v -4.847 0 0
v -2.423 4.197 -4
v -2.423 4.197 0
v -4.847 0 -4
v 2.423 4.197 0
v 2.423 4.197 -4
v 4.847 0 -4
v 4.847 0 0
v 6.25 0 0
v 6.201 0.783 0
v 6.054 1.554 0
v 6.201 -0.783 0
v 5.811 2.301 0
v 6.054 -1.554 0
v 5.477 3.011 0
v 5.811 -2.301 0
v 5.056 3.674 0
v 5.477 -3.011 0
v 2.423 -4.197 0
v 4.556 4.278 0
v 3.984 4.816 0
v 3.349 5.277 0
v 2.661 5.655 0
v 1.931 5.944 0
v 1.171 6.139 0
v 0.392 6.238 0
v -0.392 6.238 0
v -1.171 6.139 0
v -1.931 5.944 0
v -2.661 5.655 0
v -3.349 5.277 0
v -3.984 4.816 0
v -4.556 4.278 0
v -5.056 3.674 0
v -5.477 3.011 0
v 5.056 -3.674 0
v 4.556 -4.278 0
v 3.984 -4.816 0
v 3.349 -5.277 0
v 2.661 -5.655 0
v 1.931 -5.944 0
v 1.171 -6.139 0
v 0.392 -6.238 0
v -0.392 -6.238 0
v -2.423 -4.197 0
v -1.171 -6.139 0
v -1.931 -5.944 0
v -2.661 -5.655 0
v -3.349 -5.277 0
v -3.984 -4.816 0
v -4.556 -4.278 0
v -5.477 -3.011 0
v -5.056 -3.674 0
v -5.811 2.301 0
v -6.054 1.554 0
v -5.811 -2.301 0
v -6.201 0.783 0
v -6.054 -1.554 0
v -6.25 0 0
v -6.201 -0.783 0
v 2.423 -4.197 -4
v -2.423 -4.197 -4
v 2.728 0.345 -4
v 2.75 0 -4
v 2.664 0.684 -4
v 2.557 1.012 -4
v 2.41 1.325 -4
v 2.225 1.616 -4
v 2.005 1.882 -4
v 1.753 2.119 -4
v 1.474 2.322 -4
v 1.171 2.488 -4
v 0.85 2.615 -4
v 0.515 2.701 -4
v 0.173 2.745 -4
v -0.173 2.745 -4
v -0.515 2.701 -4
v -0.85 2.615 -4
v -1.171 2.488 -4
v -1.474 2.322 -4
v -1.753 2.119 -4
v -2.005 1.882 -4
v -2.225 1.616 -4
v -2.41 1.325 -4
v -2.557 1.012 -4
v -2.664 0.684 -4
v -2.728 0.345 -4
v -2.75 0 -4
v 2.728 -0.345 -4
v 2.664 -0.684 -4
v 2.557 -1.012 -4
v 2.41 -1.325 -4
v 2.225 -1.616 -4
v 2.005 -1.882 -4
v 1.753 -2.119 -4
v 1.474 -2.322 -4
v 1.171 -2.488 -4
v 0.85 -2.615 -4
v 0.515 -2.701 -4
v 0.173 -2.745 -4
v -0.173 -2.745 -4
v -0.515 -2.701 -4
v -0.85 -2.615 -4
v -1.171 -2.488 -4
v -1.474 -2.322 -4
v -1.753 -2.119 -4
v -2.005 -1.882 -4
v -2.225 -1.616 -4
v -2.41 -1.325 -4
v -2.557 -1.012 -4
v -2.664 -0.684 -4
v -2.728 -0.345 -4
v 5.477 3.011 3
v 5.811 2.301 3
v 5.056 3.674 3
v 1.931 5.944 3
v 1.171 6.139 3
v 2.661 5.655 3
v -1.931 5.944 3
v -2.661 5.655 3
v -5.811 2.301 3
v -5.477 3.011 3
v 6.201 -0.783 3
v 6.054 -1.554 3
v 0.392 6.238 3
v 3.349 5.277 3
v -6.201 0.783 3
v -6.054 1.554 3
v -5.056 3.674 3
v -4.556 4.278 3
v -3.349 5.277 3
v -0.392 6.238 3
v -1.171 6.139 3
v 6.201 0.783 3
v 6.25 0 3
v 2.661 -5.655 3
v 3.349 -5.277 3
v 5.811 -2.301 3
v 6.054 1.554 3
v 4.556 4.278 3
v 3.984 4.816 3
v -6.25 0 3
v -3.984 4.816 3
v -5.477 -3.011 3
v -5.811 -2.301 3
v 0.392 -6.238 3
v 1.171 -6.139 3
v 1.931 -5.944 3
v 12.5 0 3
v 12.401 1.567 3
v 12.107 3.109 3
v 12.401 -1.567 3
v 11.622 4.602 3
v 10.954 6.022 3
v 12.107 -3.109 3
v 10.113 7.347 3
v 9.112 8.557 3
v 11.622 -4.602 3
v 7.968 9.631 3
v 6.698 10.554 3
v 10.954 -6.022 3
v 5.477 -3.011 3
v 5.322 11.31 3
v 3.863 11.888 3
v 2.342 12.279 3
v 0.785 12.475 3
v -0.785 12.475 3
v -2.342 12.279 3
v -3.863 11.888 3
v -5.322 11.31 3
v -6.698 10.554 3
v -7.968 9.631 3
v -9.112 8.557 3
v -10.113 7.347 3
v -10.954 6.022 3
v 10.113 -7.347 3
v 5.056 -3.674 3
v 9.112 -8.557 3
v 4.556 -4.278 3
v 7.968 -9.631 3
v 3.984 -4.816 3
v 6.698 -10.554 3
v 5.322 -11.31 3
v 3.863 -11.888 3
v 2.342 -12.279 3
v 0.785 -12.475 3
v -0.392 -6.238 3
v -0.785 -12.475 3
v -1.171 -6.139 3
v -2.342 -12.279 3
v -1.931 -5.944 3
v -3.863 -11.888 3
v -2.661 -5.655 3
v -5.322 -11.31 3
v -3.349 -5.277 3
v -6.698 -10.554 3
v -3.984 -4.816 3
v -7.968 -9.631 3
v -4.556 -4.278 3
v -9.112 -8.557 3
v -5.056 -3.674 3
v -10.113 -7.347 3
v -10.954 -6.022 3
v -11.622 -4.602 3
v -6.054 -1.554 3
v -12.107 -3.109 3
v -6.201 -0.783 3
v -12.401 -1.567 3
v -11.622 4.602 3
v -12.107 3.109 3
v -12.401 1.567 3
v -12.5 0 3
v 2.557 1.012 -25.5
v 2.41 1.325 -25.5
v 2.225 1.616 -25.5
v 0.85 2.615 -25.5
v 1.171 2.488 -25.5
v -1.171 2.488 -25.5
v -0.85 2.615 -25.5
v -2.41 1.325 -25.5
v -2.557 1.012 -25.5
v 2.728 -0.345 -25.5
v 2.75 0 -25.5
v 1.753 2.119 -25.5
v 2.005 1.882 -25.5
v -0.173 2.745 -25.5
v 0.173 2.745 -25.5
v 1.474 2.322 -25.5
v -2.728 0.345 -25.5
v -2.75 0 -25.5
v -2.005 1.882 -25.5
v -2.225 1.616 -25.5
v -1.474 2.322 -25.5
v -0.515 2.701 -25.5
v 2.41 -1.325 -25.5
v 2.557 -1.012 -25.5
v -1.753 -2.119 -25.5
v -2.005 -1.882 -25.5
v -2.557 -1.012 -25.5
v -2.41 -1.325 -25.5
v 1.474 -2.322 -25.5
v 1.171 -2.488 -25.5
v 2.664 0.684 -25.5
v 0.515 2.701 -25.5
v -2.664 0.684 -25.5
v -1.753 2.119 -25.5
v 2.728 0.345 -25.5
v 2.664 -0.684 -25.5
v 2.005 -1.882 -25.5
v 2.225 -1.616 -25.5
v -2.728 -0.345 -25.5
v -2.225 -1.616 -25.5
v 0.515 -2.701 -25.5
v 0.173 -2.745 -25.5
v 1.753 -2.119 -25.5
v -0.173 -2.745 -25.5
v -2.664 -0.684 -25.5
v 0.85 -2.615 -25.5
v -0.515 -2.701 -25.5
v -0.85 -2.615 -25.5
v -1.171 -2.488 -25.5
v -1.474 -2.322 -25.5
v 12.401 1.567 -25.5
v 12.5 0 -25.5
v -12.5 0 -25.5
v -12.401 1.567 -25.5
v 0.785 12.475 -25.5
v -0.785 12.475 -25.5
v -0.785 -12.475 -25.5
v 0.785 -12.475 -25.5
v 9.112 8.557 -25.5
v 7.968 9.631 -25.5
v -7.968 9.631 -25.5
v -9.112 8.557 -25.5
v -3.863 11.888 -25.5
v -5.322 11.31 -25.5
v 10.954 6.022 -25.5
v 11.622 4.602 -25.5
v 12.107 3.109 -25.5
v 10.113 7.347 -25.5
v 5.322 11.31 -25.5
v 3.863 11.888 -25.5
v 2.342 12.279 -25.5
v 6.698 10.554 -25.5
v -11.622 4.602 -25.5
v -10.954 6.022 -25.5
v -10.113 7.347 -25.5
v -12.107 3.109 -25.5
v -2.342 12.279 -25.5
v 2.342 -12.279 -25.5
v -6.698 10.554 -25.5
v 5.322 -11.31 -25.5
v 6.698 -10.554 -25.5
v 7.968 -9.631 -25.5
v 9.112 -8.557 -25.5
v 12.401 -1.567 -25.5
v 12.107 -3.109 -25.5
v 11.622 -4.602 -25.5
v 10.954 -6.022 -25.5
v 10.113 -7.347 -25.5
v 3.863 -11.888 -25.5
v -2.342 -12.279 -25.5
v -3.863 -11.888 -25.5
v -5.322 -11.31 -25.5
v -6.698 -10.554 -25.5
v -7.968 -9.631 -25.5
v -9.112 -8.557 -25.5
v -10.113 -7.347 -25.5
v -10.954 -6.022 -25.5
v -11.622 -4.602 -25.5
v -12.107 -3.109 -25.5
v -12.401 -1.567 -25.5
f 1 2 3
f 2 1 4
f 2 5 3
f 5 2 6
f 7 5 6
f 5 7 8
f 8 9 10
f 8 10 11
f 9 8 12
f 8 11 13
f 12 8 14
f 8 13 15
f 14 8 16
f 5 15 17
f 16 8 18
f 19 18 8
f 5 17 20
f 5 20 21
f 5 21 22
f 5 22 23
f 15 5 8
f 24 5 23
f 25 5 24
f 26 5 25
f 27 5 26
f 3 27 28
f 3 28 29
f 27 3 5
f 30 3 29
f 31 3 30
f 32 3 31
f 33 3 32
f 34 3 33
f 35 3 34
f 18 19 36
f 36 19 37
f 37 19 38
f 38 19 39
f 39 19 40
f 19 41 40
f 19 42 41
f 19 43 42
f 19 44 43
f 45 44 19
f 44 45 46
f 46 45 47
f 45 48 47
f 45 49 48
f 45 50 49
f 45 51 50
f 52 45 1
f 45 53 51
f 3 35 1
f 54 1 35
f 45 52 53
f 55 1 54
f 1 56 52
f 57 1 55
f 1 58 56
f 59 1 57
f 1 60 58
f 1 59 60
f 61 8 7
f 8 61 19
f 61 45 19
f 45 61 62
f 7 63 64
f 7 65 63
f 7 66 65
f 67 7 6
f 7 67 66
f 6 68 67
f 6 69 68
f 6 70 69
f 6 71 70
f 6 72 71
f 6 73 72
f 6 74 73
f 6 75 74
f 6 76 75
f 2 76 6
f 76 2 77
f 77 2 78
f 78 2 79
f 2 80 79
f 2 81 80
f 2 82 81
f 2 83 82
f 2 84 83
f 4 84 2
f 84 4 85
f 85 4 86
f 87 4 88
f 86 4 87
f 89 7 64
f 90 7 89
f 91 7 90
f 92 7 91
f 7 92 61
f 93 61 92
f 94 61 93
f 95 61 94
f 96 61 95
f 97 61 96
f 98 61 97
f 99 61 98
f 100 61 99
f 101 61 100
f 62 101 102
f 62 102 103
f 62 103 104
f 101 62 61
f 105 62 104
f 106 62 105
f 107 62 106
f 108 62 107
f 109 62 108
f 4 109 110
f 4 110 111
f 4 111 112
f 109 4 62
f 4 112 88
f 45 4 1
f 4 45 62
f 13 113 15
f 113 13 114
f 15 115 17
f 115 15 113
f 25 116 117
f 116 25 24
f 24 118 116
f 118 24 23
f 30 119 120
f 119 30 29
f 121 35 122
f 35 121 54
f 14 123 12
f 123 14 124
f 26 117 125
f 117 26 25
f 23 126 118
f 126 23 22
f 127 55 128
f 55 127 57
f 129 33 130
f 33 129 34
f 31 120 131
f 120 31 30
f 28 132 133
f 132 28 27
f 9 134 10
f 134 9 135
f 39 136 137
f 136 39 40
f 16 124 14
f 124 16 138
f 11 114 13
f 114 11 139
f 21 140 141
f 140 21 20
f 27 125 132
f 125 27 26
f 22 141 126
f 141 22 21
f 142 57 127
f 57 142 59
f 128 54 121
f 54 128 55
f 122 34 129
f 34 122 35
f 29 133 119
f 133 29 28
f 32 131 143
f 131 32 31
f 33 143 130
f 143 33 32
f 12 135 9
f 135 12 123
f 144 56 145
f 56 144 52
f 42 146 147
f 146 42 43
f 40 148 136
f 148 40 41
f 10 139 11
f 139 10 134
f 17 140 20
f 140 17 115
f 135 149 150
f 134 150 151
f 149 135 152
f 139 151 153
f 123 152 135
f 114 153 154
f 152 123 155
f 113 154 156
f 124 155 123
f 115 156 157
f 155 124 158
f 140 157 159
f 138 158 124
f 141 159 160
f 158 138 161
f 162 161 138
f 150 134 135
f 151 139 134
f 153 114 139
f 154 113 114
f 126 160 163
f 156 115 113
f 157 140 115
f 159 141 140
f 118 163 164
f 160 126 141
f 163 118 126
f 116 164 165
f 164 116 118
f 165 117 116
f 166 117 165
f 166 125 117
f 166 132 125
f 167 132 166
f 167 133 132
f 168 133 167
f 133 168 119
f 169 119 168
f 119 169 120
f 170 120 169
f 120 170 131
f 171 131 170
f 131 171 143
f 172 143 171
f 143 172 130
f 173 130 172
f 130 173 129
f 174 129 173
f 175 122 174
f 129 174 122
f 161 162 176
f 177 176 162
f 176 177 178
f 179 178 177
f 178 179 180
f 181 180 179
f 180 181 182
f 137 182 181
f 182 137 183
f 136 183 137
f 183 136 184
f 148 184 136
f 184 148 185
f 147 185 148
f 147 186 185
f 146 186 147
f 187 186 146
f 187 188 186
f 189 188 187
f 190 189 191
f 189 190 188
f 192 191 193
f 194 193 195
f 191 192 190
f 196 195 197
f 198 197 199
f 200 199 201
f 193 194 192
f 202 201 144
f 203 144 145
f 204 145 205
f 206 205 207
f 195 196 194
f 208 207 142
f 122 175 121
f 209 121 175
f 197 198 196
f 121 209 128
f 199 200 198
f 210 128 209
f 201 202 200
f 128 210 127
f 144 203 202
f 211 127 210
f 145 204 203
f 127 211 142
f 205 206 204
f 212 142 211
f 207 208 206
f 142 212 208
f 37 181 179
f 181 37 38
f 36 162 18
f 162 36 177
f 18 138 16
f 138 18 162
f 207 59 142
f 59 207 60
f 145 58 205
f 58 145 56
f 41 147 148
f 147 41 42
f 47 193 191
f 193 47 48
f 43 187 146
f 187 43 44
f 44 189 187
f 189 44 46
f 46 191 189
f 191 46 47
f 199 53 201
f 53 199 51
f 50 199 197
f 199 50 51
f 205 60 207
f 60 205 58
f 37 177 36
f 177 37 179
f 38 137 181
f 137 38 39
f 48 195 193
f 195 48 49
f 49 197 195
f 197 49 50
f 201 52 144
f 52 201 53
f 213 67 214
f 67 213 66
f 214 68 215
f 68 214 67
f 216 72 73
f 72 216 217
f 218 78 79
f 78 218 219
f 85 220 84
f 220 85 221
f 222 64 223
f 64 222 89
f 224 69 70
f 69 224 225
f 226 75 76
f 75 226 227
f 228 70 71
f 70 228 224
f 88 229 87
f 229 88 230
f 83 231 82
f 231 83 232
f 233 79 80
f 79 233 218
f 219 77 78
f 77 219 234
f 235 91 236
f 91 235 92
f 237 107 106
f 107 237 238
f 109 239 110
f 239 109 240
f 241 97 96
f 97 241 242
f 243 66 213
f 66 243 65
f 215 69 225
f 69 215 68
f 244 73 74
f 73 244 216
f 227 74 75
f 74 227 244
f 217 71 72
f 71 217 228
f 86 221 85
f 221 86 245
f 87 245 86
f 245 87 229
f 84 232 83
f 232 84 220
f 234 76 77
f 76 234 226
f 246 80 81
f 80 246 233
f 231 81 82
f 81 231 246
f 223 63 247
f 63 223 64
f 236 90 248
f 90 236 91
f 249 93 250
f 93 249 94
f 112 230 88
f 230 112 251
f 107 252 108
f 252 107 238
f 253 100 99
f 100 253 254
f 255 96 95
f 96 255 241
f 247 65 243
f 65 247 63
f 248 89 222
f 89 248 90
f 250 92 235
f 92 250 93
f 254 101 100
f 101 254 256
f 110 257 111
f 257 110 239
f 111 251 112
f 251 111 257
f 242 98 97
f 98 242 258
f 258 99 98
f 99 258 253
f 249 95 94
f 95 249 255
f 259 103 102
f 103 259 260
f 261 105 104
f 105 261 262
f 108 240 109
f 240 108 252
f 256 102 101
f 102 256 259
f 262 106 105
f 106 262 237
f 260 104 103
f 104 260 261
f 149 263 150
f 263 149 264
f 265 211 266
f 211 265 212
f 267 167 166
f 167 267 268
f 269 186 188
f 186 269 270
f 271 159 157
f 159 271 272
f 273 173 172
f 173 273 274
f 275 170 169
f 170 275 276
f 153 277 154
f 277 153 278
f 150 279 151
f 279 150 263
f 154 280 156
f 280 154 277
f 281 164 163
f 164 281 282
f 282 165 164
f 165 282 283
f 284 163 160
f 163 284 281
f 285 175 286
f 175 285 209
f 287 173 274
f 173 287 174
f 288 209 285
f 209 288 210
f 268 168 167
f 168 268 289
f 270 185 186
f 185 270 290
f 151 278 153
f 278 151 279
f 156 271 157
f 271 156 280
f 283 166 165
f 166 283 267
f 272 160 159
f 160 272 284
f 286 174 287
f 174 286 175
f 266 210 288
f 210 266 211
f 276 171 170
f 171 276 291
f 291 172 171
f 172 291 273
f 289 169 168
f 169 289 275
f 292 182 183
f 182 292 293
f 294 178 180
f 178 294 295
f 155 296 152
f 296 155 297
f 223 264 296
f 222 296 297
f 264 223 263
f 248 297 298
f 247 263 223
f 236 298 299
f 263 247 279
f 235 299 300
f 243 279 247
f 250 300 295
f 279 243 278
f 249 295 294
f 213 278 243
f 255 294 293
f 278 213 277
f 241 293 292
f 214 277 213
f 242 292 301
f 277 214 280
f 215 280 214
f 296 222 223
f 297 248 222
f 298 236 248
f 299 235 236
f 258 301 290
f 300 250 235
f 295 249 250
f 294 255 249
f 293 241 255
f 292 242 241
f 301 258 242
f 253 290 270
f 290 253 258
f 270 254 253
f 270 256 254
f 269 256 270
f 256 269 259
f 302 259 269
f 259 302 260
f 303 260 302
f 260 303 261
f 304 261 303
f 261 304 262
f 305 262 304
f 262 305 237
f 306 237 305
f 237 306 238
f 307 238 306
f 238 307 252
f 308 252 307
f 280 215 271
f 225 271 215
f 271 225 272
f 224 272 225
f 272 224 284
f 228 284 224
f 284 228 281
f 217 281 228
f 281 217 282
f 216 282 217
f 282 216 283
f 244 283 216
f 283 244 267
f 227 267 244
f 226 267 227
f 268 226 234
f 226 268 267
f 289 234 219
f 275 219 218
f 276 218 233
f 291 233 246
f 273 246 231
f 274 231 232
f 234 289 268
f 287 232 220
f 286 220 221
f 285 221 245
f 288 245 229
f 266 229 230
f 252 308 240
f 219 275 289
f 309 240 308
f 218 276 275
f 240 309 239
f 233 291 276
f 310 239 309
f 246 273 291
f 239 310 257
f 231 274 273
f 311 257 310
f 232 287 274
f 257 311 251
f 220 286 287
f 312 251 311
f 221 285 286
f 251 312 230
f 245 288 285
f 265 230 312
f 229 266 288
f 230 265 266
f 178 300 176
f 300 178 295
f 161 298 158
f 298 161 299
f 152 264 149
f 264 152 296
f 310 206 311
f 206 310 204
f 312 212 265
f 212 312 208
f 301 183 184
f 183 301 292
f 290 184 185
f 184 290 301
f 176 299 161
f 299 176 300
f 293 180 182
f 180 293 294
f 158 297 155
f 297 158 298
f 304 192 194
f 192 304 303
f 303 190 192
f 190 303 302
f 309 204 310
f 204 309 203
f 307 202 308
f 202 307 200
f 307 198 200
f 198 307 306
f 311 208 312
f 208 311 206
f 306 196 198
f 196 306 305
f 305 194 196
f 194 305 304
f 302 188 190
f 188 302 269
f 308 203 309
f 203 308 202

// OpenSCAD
$fn = 50;


difference() {
	union() {
		translate(v = [0, 0, -25.5000000000]) {
			cylinder(h = 28.5000000000, r = 12.5000000000);
		}
	}
	union() {
		translate(v = [0, 0, 0]) {
			rotate(a = [0, 0, 0]) {
				difference() {
					union() {
						translate(v = [0, 0, -4]) {
							linear_extrude(height = 4) {
								polygon(points = [[4.8468000000, 0.0000000000], [2.4234000000, 4.1974519271], [-2.4234000000, 4.1974519271], [-4.8468000000, 0.0000000000], [-2.4234000000, -4.1974519271], [2.4234000000, -4.1974519271]]);
							}
						}
					}
					union();
				}
			}
		}
		#cylinder(h = 3, r = 6.2500000000);
		#translate(v = [0, 0, -100.0000000000]) {
			cylinder(h = 200, r = 2.7500000000);
		}
	}
}
